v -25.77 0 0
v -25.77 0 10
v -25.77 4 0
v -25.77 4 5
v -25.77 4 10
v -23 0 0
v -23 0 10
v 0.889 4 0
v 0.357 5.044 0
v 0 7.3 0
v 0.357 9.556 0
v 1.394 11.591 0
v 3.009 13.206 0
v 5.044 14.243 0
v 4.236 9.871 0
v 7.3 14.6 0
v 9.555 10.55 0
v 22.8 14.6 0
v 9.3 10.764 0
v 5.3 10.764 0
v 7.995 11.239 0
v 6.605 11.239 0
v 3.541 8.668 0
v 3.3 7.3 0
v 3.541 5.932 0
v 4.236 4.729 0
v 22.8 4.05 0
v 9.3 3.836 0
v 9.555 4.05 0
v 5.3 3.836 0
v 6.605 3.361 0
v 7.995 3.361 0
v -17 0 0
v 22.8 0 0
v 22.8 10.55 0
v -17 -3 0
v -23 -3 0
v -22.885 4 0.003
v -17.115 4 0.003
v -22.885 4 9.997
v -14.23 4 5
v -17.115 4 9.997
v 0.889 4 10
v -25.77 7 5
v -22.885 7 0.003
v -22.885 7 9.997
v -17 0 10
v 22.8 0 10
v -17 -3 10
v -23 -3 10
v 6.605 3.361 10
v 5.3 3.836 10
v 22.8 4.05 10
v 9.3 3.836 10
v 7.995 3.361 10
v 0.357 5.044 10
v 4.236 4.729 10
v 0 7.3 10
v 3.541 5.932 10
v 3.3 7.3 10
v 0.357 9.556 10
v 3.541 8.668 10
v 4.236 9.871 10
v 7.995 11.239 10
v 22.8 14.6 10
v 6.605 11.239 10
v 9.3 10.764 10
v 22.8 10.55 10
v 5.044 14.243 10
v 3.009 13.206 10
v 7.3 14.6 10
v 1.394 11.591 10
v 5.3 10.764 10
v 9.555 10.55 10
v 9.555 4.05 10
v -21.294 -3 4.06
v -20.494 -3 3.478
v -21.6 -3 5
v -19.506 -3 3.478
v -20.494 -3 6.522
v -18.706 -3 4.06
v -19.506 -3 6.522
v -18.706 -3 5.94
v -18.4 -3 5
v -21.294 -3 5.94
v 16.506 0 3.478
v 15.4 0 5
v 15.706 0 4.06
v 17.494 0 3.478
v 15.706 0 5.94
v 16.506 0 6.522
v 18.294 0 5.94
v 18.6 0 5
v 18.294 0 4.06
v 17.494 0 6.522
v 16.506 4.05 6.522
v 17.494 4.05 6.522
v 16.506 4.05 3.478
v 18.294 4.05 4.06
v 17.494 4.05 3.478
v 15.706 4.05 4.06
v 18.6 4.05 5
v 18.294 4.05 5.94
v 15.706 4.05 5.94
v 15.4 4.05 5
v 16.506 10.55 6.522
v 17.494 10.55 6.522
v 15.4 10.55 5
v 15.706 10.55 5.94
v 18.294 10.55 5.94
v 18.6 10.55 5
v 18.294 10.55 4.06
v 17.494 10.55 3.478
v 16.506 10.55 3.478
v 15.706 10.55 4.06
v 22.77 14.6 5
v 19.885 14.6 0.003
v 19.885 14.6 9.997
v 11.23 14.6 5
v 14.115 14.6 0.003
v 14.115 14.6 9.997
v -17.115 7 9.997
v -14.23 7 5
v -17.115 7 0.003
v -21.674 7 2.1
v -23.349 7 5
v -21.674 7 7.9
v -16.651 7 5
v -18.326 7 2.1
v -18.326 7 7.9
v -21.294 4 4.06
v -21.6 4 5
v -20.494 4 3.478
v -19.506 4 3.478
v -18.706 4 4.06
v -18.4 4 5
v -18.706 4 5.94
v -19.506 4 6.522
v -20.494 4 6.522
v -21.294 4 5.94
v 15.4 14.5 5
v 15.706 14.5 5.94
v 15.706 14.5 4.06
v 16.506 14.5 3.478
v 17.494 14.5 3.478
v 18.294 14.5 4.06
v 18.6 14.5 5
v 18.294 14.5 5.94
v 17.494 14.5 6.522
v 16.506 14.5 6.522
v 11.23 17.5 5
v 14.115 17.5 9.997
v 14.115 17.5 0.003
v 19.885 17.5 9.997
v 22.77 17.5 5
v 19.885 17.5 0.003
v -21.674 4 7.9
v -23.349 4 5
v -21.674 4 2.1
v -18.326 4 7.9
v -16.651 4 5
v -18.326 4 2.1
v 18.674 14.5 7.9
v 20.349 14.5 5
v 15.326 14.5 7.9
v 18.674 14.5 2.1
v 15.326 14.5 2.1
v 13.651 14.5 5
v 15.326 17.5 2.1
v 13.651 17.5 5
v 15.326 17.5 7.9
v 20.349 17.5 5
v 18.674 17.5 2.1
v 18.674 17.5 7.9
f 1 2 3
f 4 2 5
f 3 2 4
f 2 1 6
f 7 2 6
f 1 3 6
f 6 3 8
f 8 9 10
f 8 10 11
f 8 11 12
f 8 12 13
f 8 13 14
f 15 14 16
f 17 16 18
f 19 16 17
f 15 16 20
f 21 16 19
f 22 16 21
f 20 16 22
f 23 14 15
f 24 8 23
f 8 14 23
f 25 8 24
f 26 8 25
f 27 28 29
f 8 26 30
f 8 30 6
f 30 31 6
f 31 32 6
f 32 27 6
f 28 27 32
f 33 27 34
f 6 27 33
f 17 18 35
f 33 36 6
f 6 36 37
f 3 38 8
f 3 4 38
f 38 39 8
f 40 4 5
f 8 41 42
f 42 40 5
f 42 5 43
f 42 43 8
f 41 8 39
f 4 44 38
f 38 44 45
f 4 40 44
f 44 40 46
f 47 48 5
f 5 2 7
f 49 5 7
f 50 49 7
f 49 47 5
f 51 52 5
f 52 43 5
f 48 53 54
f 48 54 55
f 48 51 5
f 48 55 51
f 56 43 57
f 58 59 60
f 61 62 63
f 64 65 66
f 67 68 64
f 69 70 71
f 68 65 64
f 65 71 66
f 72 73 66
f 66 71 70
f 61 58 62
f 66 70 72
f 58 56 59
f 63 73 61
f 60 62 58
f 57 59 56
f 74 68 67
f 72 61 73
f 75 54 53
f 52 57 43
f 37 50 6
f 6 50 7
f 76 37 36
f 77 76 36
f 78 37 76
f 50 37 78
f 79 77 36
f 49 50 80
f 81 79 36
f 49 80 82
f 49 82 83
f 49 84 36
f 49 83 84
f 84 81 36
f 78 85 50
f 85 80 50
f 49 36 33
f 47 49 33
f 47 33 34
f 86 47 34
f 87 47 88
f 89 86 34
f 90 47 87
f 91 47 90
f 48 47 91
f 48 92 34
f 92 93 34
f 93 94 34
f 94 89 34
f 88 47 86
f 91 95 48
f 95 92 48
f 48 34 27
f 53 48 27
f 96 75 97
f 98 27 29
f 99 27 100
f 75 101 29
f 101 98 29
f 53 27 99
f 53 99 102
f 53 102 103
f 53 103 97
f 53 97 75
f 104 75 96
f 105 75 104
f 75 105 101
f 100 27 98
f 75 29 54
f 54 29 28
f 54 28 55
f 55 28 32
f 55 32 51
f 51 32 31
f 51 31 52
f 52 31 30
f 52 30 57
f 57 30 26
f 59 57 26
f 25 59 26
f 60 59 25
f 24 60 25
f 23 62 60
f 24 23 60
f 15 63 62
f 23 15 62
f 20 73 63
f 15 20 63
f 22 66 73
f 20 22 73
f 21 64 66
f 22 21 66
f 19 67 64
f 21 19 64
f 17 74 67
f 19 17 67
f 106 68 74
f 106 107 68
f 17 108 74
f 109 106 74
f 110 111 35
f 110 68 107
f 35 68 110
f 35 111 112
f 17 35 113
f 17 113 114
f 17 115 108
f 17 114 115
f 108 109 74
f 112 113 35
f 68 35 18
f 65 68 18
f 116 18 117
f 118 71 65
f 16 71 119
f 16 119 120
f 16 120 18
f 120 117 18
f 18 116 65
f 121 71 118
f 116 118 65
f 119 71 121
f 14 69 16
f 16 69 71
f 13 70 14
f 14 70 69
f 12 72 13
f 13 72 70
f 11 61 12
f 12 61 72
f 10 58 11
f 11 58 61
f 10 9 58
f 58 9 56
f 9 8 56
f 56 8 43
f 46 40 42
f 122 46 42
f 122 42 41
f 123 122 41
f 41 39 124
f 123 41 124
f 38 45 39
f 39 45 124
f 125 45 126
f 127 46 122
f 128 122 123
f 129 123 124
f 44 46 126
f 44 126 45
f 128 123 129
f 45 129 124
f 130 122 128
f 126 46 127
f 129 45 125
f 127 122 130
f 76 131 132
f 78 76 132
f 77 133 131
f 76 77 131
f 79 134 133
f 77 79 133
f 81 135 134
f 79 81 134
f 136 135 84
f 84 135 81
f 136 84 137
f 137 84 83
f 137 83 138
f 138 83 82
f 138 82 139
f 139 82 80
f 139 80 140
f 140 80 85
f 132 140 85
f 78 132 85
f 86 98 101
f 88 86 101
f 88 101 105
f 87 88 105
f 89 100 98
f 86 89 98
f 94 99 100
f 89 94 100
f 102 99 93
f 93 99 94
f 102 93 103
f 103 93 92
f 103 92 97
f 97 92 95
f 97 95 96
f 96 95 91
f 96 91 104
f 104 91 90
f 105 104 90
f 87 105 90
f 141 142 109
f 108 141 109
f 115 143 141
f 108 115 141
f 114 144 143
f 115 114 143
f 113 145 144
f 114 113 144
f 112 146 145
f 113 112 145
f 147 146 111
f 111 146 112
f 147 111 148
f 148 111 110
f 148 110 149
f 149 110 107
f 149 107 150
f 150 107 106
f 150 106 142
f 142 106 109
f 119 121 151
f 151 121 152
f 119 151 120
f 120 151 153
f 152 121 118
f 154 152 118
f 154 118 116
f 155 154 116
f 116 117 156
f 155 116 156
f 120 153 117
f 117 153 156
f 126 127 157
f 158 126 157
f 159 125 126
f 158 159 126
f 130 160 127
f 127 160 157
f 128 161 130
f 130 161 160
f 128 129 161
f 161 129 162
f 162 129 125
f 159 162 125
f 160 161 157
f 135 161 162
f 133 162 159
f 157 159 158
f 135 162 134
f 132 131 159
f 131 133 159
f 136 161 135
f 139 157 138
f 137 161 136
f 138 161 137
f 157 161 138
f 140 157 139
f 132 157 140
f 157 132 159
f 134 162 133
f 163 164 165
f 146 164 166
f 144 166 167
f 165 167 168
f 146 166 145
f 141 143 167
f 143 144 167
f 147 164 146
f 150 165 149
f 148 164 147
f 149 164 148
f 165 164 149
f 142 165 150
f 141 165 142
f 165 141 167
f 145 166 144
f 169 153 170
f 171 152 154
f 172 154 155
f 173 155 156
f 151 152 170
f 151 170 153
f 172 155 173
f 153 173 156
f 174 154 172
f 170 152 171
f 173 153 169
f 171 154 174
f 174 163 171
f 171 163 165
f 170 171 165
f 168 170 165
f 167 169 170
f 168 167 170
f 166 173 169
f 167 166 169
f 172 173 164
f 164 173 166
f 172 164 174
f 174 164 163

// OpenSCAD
module ramps_holder_2(){
m8_diameter = 8;
m3_diameter = 3.2;
m3_nut_diameter = 5.8 / cos(30);
m3_nut_outer_dia = 11.54;
outer_diameter = m8_diameter/2+3.3;
first_hole_position = 20;
opening_size = m8_diameter-1.5; //openingsize

difference(){
	union(){


		translate([outer_diameter, outer_diameter, 0]) cylinder(h =10, r = outer_diameter, $fn = 20);
		translate([outer_diameter, 0, 0]) cube([15.5,outer_diameter*2,10]);
		
		//standoffs
		translate([-first_hole_position-3, -3, 0]) cube([6,5,10]);
		
		translate([-(first_hole_position + m3_nut_outer_dia/2), 0, 0]) cube([m3_nut_outer_dia+first_hole_position+15, 4, 10]);
		translate([17, 17.5, 5]) rotate([90, 0, 0]) cylinder(h =5, r = 5.77, $fn = 6);
		
		
		translate([-first_hole_position, 0,0]) translate([0, 7, 5]) rotate([90, 0, 0]) #cylinder(h =5, r = m3_nut_outer_dia/2, $fn = 6);
		
	}

	translate([9, outer_diameter-opening_size/2, -1]) cube([18,opening_size,20]);
	translate([outer_diameter, outer_diameter, -1]) cylinder(h =20, r = m8_diameter/2, $fn = 18);

	//Securing hole
	translate([17, 17, 5]) rotate([90, 0, 0]) cylinder(h =20, r = m3_diameter/2, $fn = 10);
	translate([17, 19.5, 5]) rotate([90, 0, 0]) #cylinder(h =5, r = m3_nut_diameter/2, $fn = 6);

	translate([17, 17, 5]) rotate([90, 0, 0]) #cylinder(h =20, r = m3_diameter/2, $fn = 10);
	translate([-first_hole_position, 16, 5]) rotate([90, 0, 0]) cylinder(h =20, r = m3_diameter/2, $fn = 10);
	
	translate([-first_hole_position, 9, 5]) rotate([90, 0, 0]) #cylinder(h =5, r = m3_nut_diameter/2, $fn = 6);
}
}
ramps_holder_2();
